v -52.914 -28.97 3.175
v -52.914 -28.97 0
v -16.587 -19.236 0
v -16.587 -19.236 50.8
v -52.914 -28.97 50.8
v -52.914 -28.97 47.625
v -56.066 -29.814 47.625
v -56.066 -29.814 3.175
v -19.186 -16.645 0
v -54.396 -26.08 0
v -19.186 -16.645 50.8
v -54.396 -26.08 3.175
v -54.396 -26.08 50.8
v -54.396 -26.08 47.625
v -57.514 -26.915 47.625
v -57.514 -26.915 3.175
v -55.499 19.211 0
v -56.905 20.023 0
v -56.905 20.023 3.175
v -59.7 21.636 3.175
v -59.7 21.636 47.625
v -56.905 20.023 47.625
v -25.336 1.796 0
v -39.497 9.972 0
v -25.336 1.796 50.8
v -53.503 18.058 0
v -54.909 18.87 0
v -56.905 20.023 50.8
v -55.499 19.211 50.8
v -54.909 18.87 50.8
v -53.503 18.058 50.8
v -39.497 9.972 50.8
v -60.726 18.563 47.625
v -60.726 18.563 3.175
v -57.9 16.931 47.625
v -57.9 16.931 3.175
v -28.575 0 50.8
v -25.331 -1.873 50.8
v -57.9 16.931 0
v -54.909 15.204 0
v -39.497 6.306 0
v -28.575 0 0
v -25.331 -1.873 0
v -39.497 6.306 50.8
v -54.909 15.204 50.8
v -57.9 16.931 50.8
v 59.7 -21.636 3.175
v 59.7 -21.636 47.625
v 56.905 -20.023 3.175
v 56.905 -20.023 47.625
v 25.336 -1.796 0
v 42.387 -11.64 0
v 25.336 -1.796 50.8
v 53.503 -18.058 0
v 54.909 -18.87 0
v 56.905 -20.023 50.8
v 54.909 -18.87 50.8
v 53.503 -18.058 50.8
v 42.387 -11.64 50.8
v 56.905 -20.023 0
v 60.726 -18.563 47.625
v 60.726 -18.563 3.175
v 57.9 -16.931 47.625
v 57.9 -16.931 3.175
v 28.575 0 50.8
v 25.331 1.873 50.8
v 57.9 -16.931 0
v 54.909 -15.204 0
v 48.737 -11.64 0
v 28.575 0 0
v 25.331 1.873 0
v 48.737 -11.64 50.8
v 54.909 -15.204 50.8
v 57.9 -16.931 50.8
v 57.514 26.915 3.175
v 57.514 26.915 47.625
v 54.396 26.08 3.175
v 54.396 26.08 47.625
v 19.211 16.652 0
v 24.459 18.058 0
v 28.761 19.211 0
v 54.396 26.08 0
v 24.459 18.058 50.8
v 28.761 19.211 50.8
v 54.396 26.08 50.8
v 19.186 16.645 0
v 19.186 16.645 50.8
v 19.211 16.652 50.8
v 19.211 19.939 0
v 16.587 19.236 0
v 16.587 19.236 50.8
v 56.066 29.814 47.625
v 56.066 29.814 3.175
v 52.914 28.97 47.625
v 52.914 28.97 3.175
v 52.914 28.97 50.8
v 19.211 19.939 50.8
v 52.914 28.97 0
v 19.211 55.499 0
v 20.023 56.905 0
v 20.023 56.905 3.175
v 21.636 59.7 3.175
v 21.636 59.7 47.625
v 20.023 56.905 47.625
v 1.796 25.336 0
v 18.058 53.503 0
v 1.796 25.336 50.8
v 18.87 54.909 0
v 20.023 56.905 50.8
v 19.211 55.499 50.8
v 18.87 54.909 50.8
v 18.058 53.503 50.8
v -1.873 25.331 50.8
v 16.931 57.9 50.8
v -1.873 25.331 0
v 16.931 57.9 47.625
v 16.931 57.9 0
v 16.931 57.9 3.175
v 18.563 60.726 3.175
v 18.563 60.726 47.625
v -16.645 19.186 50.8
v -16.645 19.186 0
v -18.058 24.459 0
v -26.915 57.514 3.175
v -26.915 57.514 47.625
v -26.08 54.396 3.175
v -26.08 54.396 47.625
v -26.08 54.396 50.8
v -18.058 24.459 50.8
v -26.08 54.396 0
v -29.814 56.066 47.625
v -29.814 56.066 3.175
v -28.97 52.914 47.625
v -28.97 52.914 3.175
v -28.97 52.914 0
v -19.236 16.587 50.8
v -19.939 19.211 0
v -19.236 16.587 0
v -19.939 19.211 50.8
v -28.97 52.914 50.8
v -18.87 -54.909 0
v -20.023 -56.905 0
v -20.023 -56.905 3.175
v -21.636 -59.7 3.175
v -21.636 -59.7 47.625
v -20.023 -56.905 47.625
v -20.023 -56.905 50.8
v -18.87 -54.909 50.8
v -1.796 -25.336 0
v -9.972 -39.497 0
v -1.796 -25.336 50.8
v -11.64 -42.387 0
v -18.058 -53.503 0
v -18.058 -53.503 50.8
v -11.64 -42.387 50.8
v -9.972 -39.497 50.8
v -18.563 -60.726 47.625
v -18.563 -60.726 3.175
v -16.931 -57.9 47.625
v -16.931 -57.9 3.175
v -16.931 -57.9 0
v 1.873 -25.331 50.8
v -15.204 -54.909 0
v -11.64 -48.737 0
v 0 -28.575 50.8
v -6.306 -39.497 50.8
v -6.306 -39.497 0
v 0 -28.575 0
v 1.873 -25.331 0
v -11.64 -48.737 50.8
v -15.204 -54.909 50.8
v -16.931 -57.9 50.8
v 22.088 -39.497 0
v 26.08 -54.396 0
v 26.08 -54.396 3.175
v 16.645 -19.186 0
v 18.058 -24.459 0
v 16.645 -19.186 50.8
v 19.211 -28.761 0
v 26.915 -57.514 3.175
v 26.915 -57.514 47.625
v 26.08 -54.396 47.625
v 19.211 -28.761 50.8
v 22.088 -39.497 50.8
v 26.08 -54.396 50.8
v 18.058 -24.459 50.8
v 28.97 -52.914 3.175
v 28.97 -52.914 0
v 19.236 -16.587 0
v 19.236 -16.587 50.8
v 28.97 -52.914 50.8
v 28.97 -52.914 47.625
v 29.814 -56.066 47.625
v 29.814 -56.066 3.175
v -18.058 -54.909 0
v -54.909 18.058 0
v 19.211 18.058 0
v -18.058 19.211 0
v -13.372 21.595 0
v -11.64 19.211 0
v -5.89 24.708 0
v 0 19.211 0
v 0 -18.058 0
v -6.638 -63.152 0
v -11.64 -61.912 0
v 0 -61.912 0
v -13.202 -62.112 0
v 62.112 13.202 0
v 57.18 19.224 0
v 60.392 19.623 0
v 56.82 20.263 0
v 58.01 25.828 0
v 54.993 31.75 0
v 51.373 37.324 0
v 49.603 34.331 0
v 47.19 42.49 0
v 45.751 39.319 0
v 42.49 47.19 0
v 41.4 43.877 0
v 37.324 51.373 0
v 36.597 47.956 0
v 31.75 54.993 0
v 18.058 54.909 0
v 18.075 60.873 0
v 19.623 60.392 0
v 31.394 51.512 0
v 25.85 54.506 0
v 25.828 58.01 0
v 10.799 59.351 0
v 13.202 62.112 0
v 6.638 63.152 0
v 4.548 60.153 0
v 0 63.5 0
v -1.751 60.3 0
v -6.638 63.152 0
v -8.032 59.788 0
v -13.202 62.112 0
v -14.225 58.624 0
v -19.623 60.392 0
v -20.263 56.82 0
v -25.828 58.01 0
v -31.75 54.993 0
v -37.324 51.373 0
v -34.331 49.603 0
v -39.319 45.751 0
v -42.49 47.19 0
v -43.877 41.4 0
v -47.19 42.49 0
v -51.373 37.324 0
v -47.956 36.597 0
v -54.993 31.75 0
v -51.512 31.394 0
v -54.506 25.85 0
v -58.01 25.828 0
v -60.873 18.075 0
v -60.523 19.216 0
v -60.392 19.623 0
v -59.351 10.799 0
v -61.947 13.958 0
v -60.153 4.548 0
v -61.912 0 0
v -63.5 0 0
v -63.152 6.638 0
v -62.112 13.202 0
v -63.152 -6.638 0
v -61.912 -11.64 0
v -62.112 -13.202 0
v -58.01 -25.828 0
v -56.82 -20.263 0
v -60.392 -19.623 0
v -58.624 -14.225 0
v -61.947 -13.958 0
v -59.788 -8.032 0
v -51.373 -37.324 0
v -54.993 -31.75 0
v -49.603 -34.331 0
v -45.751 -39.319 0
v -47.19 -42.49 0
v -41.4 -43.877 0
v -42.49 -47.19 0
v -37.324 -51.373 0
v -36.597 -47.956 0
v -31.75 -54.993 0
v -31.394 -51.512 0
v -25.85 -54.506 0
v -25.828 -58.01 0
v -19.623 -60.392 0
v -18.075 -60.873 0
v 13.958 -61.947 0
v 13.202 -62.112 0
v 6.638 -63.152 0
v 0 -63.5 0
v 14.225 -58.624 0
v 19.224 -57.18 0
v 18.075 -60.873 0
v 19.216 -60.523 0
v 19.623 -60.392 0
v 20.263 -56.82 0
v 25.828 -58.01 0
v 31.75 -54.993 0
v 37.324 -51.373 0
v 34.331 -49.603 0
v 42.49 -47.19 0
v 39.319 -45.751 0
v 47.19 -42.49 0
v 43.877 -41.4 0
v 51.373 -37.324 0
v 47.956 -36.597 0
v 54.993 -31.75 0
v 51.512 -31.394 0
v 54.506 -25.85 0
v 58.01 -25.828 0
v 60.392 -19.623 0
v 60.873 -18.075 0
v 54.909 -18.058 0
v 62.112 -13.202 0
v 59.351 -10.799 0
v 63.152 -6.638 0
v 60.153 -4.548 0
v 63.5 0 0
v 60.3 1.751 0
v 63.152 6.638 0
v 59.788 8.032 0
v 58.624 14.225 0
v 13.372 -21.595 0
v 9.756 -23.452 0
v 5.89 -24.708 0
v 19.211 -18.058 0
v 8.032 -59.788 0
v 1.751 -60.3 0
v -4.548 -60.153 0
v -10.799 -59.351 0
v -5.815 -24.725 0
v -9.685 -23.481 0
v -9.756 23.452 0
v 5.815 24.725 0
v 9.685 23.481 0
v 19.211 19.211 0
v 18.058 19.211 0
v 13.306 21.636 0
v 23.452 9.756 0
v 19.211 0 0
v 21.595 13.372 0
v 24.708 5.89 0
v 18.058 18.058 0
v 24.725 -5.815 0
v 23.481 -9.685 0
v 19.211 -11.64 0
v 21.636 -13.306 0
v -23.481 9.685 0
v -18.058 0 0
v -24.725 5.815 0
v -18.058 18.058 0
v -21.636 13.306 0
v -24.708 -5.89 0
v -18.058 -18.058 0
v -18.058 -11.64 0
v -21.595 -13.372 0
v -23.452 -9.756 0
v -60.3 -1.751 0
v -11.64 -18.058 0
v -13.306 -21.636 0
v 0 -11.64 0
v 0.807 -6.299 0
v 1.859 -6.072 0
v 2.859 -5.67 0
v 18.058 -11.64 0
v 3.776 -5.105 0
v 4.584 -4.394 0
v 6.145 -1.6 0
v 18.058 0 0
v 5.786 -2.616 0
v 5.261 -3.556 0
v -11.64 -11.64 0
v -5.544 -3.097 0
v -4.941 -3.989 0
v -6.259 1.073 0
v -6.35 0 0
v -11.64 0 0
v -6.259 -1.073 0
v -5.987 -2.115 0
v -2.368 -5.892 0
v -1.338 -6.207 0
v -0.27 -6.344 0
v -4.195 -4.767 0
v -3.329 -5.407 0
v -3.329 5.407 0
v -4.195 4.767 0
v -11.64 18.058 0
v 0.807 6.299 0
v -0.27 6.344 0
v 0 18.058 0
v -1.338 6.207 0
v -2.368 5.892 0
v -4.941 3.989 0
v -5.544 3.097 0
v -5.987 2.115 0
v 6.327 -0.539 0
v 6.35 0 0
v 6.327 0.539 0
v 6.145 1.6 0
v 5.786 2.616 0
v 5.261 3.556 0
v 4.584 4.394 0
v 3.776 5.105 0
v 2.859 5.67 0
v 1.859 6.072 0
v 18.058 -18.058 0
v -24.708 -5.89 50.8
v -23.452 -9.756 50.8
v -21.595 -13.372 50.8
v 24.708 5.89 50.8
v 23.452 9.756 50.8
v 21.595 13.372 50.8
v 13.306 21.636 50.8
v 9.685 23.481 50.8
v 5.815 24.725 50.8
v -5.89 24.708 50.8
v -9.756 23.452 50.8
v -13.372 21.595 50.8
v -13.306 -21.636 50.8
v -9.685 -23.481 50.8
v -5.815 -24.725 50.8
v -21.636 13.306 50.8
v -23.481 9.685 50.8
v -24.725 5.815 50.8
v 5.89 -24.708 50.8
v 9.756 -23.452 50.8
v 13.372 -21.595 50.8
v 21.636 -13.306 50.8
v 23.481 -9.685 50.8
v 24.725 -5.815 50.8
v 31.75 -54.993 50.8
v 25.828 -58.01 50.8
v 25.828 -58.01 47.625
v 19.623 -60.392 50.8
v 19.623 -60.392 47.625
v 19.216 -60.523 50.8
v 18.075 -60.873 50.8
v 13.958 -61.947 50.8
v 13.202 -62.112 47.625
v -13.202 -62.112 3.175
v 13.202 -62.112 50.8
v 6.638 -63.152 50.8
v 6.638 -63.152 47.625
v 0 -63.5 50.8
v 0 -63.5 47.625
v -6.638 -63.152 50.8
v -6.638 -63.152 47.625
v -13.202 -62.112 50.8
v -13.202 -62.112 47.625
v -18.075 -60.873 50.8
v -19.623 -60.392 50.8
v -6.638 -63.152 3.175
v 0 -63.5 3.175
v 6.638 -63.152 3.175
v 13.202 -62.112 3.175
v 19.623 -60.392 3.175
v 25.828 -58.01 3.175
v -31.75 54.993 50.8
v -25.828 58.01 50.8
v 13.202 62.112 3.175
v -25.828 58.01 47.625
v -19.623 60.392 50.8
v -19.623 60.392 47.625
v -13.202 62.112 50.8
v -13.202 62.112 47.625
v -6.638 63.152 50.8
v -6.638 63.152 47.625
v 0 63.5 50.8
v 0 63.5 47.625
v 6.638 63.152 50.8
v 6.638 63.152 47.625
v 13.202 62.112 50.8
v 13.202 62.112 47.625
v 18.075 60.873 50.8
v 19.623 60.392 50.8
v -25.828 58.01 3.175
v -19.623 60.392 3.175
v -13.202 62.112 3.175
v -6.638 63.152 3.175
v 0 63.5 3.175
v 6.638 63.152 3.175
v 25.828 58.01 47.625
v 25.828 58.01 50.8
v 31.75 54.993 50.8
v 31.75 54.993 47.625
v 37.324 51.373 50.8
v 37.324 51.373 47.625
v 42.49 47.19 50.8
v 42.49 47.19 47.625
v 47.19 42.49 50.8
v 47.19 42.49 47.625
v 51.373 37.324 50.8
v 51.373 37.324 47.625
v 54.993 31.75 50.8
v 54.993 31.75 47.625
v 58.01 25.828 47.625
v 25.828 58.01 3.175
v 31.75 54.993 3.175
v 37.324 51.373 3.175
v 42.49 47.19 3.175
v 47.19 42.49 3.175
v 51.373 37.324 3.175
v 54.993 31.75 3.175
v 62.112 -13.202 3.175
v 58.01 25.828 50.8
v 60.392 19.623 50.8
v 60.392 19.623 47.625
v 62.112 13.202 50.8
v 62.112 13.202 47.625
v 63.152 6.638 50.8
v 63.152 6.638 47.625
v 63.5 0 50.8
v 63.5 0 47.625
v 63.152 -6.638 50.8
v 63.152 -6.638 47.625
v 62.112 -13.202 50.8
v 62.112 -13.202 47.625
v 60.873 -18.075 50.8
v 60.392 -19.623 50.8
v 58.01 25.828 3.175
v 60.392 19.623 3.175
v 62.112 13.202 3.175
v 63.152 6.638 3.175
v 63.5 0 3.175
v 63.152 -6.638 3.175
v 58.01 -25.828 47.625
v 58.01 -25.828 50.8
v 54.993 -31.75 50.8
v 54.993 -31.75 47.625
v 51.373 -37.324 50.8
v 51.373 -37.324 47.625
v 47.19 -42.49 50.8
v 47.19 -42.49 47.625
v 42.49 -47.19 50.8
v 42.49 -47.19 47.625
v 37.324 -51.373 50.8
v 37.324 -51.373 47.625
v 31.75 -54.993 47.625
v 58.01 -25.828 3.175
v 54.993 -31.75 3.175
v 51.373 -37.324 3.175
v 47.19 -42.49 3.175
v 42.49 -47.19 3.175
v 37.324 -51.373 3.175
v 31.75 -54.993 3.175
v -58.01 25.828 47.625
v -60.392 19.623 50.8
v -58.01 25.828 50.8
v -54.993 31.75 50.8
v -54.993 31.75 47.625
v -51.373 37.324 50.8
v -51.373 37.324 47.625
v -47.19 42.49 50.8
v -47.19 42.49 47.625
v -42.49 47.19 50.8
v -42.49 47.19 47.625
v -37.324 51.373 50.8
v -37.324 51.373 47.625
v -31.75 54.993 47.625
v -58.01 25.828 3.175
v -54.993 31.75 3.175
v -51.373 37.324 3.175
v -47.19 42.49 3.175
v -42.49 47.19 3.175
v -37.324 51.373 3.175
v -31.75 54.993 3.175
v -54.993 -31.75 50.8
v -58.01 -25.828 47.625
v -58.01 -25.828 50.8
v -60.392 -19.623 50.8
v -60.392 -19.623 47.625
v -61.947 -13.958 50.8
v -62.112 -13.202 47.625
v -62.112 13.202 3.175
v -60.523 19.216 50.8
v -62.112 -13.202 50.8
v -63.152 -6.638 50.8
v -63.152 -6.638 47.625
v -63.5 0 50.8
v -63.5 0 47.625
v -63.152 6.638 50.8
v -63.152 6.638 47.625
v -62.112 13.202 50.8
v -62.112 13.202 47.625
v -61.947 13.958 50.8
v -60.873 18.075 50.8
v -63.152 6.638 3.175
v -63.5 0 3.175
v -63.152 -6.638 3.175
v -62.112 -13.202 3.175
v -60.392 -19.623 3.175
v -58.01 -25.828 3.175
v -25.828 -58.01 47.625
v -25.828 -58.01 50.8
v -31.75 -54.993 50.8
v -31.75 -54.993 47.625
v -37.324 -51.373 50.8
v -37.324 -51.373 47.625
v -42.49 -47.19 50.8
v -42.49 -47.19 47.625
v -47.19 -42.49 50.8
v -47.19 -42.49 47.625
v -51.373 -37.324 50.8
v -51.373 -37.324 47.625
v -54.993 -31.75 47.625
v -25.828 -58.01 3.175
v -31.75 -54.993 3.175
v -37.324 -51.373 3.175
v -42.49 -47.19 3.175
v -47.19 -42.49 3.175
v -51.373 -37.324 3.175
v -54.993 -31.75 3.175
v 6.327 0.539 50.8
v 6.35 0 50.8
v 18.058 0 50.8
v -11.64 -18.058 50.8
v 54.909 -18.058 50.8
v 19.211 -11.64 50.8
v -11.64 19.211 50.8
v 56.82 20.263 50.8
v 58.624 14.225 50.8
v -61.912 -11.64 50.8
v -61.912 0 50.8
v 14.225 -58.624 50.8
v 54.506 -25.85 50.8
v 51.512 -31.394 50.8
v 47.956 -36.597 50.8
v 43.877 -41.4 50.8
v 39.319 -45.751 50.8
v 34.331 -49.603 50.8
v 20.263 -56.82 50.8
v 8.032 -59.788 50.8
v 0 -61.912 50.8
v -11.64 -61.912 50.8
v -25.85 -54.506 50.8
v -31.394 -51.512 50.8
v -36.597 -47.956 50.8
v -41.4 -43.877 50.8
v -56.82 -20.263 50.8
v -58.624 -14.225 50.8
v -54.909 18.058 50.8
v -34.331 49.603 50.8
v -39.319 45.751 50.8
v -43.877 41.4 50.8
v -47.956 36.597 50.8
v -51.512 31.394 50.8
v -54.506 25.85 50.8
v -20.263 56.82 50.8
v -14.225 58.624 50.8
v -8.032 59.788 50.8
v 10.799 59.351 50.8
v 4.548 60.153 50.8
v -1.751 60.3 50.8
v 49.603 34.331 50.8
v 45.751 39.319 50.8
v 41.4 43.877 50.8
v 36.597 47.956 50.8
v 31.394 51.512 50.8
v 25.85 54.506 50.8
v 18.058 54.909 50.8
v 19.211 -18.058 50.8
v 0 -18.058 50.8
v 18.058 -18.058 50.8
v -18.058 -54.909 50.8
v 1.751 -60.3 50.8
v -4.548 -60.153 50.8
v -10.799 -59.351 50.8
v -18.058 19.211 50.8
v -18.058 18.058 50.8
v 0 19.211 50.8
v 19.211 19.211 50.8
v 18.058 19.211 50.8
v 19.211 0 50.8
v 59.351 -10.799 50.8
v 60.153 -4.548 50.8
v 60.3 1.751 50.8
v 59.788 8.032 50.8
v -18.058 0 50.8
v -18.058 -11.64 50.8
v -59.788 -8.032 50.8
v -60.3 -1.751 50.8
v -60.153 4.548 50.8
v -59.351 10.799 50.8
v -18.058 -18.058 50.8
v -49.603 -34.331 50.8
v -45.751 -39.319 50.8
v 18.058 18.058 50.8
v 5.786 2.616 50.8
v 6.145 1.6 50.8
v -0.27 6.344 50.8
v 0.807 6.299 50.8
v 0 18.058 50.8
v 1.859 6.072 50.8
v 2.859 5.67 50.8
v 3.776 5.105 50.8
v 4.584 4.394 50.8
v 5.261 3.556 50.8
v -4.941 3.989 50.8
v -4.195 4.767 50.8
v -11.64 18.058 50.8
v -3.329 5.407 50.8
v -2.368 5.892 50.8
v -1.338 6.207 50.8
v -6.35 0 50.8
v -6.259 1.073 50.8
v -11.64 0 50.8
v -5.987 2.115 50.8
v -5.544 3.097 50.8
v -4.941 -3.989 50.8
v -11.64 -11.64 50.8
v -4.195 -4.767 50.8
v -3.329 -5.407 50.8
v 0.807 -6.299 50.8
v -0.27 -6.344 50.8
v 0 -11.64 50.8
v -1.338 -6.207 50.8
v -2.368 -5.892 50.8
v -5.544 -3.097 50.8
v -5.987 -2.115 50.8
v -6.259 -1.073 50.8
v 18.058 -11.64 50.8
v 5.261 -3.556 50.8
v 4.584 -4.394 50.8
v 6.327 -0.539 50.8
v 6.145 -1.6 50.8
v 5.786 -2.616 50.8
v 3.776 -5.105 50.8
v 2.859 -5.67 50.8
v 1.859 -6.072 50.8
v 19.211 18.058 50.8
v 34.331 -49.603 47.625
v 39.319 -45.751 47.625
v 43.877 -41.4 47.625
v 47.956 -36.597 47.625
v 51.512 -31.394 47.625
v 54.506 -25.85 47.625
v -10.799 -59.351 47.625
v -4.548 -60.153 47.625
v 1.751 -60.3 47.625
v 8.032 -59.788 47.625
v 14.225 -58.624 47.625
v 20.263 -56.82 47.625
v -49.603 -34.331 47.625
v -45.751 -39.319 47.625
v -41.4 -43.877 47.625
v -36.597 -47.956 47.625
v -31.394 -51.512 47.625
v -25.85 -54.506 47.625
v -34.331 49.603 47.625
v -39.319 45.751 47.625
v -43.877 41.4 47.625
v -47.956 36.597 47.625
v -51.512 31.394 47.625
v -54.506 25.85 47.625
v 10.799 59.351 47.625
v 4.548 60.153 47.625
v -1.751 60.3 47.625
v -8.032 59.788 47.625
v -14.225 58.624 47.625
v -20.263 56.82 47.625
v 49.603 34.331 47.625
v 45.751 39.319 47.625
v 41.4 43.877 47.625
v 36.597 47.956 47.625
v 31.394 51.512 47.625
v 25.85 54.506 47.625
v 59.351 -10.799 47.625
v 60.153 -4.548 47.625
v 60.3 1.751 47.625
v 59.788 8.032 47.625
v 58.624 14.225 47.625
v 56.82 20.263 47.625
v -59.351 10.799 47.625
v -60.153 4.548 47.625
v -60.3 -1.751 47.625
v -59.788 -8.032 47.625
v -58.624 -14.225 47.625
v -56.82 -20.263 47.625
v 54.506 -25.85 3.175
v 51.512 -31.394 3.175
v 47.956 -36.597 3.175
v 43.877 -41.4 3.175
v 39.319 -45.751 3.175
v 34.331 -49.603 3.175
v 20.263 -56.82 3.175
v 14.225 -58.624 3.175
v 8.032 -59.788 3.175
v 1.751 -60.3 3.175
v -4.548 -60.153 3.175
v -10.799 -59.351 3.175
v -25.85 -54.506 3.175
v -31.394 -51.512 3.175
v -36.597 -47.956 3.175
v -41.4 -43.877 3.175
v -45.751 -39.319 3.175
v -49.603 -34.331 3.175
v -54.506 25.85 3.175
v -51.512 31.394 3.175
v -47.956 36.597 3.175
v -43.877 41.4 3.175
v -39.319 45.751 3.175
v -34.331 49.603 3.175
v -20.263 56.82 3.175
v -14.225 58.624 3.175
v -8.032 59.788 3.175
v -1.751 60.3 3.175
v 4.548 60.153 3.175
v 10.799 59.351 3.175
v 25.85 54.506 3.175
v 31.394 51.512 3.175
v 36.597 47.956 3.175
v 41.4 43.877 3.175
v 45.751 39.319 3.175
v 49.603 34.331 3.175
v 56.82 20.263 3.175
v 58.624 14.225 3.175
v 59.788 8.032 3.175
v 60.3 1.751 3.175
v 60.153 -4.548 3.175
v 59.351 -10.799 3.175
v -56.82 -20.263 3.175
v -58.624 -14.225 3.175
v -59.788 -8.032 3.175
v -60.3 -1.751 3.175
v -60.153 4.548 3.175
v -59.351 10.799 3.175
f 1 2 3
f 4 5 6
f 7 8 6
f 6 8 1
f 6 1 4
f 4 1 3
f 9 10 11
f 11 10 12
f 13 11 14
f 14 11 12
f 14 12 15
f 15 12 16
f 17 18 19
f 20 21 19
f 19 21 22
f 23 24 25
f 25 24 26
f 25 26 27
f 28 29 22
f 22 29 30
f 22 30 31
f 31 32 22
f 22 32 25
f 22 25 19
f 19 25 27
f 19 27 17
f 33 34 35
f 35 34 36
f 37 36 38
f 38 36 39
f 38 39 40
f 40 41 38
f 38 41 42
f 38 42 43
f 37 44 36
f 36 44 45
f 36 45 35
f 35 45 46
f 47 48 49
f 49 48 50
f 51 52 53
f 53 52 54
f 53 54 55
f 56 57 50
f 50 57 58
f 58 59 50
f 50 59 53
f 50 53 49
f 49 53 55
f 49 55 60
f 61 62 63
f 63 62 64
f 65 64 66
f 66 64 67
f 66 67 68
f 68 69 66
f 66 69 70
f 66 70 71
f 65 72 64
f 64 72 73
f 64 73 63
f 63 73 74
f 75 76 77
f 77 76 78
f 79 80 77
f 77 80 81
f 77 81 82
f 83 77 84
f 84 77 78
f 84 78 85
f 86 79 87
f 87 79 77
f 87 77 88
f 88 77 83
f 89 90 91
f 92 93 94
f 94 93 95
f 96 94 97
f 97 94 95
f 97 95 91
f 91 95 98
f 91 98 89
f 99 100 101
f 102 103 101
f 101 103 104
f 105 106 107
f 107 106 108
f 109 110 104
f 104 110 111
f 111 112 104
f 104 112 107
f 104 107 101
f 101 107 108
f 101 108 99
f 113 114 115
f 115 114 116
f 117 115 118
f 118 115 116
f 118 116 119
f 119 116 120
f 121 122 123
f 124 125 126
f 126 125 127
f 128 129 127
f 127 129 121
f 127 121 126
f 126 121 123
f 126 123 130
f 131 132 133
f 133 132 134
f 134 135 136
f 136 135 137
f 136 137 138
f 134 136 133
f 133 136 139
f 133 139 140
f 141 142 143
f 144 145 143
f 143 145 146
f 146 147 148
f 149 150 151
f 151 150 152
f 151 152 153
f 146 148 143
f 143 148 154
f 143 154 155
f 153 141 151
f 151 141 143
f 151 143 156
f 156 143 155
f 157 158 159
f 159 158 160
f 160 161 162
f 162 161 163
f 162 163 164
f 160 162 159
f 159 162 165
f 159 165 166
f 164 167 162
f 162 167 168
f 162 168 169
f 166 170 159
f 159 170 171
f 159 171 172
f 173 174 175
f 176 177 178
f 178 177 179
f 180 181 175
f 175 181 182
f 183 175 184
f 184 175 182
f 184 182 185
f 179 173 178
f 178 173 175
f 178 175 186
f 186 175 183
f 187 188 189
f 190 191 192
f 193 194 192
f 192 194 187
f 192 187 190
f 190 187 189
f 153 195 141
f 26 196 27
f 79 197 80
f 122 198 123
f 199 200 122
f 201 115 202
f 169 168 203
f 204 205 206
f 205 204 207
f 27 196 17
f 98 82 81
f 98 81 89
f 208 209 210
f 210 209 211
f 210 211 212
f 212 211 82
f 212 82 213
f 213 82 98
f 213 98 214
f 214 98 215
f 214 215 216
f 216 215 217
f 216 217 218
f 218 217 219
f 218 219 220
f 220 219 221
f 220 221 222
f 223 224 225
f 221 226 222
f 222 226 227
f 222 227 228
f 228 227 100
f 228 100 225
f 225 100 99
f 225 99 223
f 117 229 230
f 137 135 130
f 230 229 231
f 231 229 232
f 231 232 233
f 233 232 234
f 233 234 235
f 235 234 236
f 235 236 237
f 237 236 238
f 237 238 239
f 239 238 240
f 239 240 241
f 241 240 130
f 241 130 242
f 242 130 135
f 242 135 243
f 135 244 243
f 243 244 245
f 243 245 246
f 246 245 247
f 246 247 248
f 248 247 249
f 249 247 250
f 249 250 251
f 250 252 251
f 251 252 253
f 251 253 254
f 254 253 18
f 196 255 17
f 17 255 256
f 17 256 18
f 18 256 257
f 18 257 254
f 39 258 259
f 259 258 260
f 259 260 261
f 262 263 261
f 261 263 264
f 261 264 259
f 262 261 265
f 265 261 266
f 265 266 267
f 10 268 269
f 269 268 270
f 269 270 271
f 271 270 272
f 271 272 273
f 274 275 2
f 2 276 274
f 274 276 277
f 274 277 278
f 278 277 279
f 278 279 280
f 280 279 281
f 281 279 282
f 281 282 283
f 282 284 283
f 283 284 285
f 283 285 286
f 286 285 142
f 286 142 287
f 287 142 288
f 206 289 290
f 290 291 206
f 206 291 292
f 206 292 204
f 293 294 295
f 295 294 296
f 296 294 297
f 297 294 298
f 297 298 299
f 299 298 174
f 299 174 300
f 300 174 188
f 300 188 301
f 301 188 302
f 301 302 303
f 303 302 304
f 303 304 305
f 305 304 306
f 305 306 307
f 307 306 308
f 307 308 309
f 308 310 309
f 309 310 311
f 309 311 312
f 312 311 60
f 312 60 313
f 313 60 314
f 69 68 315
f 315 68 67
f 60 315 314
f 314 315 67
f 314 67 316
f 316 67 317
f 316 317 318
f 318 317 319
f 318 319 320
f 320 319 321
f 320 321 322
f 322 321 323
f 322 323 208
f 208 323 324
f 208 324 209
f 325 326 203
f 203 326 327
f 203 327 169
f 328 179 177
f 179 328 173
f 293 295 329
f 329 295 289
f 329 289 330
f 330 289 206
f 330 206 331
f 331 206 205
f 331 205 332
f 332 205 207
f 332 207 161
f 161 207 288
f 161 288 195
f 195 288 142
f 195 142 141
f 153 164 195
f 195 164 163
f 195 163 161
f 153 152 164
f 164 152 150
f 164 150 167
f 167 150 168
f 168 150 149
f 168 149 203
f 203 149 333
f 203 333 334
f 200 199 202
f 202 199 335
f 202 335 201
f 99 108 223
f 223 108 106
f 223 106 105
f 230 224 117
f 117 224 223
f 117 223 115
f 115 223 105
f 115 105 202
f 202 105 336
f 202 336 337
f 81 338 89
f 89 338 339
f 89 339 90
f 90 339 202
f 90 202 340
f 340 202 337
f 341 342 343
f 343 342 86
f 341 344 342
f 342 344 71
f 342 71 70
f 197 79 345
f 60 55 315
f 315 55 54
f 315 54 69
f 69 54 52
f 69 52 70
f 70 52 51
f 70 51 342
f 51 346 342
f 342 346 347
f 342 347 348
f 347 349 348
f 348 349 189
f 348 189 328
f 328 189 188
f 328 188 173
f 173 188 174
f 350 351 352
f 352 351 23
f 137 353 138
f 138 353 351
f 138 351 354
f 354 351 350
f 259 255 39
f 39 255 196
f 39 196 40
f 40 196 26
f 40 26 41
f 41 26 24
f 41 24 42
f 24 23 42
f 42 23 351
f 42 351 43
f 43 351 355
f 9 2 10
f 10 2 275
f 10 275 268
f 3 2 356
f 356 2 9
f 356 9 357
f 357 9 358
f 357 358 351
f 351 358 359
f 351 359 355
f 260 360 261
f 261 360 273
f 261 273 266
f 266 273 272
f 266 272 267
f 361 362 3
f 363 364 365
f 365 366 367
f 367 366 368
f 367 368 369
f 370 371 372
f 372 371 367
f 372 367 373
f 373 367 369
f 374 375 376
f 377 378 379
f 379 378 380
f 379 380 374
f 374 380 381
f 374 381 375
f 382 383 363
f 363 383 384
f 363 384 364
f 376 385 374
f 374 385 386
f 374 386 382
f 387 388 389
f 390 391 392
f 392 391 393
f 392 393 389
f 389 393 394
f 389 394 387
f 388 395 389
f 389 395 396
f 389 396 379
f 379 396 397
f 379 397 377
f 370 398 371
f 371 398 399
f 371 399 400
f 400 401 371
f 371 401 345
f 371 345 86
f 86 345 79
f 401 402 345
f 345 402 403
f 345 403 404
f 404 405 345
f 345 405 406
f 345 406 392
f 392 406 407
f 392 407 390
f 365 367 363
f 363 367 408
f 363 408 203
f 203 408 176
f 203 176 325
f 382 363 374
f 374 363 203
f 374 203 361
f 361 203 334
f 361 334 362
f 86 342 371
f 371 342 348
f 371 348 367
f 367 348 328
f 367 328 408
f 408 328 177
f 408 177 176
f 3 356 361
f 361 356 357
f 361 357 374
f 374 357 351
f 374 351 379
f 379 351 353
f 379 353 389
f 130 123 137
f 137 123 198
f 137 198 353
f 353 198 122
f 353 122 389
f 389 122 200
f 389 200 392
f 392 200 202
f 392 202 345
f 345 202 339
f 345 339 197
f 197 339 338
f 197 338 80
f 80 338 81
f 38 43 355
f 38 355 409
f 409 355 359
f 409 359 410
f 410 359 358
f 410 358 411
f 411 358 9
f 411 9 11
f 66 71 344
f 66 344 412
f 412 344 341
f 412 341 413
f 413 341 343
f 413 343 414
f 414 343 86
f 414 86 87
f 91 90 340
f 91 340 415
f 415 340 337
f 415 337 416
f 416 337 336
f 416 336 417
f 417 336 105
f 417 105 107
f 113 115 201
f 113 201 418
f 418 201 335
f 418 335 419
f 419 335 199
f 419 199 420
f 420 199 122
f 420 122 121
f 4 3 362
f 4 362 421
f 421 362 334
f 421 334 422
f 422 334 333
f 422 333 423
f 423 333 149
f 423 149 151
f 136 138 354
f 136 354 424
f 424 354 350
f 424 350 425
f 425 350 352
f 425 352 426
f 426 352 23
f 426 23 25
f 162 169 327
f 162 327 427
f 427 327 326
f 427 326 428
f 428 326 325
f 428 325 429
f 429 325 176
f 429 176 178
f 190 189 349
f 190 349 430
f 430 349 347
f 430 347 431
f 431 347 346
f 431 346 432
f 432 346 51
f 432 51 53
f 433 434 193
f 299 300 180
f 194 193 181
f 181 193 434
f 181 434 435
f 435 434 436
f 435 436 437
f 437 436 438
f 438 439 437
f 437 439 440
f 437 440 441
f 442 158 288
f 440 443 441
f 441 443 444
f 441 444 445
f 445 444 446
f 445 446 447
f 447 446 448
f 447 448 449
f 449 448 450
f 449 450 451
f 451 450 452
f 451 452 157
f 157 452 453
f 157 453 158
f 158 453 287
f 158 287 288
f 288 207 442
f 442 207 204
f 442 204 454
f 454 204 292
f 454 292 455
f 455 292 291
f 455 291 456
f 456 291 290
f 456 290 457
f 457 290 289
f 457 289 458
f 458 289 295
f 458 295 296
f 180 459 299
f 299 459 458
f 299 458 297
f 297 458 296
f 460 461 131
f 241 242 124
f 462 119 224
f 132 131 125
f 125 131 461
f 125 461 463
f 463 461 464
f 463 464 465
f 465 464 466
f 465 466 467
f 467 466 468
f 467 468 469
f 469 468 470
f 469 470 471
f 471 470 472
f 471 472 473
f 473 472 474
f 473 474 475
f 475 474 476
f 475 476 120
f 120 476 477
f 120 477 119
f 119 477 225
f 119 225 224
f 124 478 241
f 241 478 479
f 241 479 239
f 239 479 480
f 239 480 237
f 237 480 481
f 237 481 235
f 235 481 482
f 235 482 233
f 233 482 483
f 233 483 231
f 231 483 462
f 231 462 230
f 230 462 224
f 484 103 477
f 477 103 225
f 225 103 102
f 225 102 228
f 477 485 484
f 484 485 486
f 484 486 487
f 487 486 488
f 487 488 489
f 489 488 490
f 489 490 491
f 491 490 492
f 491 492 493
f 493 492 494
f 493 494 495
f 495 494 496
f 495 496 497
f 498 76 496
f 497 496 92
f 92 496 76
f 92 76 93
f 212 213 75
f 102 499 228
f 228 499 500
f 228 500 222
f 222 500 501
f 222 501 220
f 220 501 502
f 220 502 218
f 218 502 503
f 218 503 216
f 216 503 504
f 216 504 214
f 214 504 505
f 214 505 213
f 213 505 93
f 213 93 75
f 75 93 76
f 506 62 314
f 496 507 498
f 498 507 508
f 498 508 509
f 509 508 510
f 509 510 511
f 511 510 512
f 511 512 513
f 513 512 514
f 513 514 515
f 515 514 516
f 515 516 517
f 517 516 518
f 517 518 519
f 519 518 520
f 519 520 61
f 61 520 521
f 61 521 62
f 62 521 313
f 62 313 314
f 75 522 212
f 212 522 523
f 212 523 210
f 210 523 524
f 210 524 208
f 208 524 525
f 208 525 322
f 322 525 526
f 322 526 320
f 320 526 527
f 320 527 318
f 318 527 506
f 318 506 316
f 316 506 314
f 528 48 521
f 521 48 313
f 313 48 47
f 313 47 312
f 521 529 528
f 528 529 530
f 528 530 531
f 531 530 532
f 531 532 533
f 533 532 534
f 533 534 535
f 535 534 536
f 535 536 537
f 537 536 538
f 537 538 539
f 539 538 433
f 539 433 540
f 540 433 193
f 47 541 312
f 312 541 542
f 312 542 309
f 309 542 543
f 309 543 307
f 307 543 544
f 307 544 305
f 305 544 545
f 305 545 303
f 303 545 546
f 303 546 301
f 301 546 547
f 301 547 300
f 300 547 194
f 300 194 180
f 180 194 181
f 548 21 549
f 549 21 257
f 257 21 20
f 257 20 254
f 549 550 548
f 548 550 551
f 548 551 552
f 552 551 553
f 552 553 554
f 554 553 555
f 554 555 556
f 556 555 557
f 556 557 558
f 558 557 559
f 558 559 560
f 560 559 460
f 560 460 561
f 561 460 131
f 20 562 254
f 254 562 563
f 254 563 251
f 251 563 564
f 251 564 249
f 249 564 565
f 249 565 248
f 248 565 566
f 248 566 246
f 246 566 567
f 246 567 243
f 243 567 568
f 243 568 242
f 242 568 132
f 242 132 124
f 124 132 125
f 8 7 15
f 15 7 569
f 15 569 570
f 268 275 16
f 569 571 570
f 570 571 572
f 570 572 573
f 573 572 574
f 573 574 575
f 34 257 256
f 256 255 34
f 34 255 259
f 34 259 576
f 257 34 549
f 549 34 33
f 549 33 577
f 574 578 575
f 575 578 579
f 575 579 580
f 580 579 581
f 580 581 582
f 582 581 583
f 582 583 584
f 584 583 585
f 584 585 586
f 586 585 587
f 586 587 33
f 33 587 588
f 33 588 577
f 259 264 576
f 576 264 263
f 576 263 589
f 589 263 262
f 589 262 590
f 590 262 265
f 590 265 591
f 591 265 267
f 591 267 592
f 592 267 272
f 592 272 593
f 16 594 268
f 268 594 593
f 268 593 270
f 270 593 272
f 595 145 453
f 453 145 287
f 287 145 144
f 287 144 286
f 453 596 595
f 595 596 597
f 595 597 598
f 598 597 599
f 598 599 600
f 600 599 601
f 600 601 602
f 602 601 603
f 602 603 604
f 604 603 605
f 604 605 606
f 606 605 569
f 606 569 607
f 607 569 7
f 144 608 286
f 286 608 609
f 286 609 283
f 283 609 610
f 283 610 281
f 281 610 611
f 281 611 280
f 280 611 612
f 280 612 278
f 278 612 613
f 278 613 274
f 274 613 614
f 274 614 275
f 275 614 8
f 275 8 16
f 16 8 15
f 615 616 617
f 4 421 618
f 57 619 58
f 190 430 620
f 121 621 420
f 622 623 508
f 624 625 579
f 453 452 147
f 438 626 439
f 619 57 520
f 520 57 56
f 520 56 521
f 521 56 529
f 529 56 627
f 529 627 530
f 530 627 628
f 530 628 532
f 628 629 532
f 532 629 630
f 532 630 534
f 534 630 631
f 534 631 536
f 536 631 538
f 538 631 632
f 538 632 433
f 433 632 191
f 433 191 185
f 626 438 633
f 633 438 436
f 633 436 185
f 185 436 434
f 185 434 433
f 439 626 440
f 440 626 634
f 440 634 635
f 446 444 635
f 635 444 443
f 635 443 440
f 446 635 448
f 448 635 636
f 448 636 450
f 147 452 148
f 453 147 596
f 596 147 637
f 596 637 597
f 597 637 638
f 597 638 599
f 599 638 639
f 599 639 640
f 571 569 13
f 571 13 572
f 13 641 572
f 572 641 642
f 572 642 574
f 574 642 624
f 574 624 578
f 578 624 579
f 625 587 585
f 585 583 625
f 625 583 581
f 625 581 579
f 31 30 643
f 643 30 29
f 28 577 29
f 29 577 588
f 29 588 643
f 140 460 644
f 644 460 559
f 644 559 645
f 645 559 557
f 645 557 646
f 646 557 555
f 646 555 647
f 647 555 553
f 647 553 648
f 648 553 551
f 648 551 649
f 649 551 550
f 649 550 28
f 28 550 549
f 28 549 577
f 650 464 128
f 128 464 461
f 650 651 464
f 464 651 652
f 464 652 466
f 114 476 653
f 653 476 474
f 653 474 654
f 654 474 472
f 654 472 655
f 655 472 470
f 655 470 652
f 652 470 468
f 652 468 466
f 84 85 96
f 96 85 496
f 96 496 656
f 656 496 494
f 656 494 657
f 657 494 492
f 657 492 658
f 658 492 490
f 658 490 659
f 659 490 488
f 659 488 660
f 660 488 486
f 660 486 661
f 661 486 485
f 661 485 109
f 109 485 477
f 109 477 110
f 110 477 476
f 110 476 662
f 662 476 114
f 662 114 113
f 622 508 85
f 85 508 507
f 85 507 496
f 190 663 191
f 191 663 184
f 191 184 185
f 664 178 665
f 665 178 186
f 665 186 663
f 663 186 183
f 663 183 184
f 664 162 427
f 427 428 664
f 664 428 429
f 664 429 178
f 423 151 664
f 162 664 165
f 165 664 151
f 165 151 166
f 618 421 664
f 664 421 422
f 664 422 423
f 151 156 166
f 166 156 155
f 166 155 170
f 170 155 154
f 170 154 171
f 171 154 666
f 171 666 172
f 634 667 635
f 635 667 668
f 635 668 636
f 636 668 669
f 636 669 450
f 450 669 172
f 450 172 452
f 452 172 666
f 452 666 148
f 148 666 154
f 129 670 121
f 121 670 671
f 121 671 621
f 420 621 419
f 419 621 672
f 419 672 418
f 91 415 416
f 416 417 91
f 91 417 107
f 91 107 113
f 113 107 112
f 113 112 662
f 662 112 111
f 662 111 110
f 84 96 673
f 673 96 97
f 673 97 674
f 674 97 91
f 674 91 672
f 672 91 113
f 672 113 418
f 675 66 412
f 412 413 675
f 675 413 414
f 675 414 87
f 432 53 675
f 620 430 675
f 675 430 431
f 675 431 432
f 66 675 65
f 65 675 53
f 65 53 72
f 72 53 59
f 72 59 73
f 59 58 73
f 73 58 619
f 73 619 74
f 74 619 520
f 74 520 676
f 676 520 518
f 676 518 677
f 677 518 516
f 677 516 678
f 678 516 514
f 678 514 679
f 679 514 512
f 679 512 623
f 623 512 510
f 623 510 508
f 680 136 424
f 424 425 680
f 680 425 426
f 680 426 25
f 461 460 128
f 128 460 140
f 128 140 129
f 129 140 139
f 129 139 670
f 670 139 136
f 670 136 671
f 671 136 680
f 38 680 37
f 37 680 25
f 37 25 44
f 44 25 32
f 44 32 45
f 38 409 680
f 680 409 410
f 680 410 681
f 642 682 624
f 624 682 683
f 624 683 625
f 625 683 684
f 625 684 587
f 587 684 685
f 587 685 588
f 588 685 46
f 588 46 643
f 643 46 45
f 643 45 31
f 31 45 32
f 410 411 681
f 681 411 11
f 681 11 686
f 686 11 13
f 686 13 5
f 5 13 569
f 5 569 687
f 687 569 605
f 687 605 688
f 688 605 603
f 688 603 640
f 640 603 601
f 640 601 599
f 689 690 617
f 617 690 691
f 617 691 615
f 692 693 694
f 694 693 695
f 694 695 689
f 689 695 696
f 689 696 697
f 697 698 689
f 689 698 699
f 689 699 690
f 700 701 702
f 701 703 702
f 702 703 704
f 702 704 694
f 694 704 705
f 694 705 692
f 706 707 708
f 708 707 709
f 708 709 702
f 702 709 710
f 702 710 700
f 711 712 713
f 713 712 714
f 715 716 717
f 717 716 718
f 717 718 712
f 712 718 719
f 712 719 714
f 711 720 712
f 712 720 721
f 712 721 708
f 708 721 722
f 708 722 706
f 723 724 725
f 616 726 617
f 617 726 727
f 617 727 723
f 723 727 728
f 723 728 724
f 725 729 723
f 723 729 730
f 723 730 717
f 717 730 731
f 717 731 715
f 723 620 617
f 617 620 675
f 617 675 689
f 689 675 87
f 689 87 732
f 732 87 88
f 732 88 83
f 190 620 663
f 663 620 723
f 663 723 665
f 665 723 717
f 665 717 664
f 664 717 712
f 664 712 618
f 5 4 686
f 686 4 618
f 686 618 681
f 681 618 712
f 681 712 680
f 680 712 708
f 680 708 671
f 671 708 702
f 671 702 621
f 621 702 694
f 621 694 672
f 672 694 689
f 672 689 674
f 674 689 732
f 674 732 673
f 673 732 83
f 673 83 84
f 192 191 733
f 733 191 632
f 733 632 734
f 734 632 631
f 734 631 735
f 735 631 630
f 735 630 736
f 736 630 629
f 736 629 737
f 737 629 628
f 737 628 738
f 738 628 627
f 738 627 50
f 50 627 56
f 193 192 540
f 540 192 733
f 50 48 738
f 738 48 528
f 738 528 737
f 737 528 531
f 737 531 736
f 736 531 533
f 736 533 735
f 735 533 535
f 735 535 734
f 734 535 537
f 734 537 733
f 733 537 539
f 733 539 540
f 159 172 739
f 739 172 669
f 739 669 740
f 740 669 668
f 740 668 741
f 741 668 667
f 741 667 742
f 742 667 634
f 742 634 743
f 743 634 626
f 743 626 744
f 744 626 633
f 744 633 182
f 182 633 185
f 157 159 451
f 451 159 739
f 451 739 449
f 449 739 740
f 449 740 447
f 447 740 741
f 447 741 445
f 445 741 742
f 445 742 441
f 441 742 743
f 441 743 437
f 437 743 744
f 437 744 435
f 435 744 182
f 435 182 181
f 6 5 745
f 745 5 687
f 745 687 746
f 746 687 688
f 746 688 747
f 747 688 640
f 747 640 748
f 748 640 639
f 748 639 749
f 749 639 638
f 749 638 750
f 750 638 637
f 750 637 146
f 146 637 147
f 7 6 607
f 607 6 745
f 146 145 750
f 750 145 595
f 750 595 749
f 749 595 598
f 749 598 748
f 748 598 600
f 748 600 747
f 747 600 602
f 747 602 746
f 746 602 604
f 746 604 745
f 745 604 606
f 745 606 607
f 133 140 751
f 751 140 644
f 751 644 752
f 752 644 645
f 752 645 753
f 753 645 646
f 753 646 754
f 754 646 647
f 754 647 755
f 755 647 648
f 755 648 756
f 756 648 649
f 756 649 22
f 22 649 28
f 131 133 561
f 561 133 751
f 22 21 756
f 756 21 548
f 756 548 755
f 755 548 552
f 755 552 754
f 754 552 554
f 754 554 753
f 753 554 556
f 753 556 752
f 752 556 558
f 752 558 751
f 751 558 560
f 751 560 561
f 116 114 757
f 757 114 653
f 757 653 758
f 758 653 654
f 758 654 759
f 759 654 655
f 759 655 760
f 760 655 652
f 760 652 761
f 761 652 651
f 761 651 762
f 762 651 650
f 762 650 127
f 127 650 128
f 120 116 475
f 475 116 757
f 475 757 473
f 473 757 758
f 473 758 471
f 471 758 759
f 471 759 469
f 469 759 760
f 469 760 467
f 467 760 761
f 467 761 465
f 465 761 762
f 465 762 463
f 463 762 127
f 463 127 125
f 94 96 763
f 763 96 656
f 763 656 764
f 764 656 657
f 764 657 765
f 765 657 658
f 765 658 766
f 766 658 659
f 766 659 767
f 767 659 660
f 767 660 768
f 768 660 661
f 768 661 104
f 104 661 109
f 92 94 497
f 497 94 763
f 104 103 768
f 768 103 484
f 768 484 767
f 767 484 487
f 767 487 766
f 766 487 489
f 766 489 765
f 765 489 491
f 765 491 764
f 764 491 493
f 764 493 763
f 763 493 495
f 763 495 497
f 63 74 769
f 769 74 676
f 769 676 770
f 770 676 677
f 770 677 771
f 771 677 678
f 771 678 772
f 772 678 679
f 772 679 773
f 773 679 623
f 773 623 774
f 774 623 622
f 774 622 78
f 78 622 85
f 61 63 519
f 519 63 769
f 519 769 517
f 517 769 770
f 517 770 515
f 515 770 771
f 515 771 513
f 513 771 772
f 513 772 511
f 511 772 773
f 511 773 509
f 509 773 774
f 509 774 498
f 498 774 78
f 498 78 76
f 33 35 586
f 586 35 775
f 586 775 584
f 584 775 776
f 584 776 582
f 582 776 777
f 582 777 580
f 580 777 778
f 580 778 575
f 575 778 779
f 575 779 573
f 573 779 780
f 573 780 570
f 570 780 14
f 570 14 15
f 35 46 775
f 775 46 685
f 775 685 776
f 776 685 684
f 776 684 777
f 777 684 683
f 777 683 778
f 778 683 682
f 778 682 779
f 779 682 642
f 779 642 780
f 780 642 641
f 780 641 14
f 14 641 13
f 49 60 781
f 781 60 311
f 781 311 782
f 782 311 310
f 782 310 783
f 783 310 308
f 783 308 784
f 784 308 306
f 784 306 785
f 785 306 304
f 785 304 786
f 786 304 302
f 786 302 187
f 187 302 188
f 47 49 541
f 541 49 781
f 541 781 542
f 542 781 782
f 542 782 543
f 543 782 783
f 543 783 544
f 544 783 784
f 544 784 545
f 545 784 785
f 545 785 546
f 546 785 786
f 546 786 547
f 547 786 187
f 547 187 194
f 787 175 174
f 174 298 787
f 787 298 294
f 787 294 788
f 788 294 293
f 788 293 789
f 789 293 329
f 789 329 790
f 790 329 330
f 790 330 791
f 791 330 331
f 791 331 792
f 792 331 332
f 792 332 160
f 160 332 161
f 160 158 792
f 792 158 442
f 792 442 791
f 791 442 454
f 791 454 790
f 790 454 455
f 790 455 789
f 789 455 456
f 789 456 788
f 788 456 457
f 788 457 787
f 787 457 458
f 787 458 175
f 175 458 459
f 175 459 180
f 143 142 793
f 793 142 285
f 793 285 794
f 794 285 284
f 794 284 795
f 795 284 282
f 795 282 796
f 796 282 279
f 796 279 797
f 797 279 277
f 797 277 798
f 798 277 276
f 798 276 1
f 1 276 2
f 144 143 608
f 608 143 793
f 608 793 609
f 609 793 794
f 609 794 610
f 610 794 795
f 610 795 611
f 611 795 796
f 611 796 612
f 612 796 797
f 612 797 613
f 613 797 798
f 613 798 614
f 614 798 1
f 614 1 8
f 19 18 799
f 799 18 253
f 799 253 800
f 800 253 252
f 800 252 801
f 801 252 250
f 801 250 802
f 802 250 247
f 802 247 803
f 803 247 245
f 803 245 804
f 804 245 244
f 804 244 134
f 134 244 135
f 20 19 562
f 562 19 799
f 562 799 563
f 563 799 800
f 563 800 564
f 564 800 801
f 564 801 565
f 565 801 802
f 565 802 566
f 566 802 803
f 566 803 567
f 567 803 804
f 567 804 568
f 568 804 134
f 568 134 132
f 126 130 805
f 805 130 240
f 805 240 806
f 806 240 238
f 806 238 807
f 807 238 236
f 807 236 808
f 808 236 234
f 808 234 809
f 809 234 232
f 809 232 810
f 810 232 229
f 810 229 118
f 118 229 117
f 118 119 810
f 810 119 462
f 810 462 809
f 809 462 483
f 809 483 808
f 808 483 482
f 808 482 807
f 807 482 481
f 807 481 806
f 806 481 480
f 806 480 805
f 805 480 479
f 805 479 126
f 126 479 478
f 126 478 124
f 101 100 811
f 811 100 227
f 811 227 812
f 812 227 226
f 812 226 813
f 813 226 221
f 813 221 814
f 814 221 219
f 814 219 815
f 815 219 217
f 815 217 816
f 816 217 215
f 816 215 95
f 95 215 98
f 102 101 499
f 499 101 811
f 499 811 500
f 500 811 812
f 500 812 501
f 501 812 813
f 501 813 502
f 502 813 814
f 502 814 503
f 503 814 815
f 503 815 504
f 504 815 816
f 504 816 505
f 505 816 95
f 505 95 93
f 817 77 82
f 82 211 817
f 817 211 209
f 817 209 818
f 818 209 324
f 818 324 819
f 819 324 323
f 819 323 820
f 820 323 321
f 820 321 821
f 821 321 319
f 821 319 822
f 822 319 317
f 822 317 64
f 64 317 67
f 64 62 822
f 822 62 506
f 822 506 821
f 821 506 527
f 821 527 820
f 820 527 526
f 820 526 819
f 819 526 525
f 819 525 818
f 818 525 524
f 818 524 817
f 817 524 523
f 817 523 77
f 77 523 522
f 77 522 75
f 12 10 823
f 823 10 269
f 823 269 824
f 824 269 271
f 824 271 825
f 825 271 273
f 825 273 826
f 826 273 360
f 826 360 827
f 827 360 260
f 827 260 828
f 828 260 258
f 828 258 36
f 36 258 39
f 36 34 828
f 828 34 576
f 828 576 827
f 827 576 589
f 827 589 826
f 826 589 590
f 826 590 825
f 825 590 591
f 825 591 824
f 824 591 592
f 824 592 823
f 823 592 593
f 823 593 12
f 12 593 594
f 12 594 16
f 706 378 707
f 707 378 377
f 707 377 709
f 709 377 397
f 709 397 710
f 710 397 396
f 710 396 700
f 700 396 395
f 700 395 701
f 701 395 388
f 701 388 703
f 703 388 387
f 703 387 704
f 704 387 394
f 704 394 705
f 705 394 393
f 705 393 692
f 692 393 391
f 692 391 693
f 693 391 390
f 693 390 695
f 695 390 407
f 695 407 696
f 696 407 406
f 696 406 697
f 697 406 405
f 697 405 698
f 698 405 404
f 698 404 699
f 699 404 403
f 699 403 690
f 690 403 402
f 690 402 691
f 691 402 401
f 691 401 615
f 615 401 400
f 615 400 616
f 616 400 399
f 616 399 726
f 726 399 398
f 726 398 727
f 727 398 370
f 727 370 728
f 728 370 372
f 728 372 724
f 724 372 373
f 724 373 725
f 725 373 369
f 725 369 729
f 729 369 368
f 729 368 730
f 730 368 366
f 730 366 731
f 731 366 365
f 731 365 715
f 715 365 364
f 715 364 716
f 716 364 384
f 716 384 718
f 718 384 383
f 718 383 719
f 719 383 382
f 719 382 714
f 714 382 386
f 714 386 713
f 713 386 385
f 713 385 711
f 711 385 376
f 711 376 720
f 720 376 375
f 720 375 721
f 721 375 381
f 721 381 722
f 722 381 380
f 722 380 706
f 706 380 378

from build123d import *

# Parameters (mm, degrees)
SKETCH1_R           = 6.35
BOSS_EXTRUDE1_DEPTH = 50.8
BOSS_EXTRUDE2_START = -3.175
SKETCH2_R           = 63.5
SKETCH2_R_2         = 60.325
BOSS_EXTRUDE2_DEPTH = 3.175
SKETCH6_R           = 63.5
SKETCH6_R_2         = 60.325
BOSS_EXTRUDE3_DEPTH = 3.175
SKETCH1_3_R         = 6.35
CUT_EXTRUDE1_DEPTH  = 50.8


with BuildPart() as part:
    # Sketch1 → Boss-Extrude1 (new body)
    with BuildSketch(Plane.XY):
        Circle(SKETCH1_R)
        with BuildLine():
            Line((59.700240967, -21.63634046), (25.336398074, -1.796366515))
            ThreePointArc((25.336398074, -1.796366515), (-25.399970938, -0.03842333), (25.330847289, 1.873012441))
            Line((25.330847289, 1.873012441), (60.726284541, -18.562552784))
            ThreePointArc((60.726284541, -18.562552784), (60.232873534, -20.105992785), (59.700240967, -21.63634046))
        make_face()
        with BuildLine():
            Line((26.915242167, -57.513648286), (16.645315944, -19.185761833))
            ThreePointArc((16.645315944, -19.185761833), (-17.987661089, 17.933322295), (19.23603369, -16.587194093))
            Line((19.23603369, -16.587194093), (29.814260645, -56.065674545))
            ThreePointArc((29.814260645, -56.065674545), (28.373989485, -56.808157167), (26.915242167, -57.513648286))
        make_face()
        with BuildLine():
            Line((-21.63634046, -59.700240967), (-1.796366515, -25.336398074))
            ThreePointArc((-1.796366515, -25.336398074), (-0.03842333, 25.399970938), (1.873012441, -25.330847289))
            Line((1.873012441, -25.330847289), (-18.562552784, -60.726284541))
            ThreePointArc((-18.562552784, -60.726284541), (-20.105992785, -60.232873534), (-21.63634046, -59.700240967))
        make_face()
        with BuildLine():
            Line((-57.513648286, -26.915242167), (-19.185761833, -16.645315944))
            ThreePointArc((-19.185761833, -16.645315944), (17.933322295, 17.987661089), (-16.587194093, -19.23603369))
            Line((-16.587194093, -19.23603369), (-56.065674545, -29.814260645))
            ThreePointArc((-56.065674545, -29.814260645), (-56.808157167, -28.373989485), (-57.513648286, -26.915242167))
        make_face()
        with BuildLine():
            Line((-59.700240967, 21.63634046), (-25.336398074, 1.796366515))
            ThreePointArc((-25.336398074, 1.796366515), (25.399970938, 0.03842333), (-25.330847289, -1.873012441))
            Line((-25.330847289, -1.873012441), (-60.726284541, 18.562552784))
            ThreePointArc((-60.726284541, 18.562552784), (-60.232873534, 20.105992785), (-59.700240967, 21.63634046))
        make_face()
        with BuildLine():
            Line((-26.915242167, 57.513648286), (-16.645315944, 19.185761833))
            ThreePointArc((-16.645315944, 19.185761833), (17.987661089, -17.933322295), (-19.23603369, 16.587194093))
            Line((-19.23603369, 16.587194093), (-29.814260645, 56.065674545))
            ThreePointArc((-29.814260645, 56.065674545), (-28.373989485, 56.808157167), (-26.915242167, 57.513648286))
        make_face()
        with BuildLine():
            Line((21.63634046, 59.700240967), (1.796366515, 25.336398074))
            ThreePointArc((1.796366515, 25.336398074), (0.03842333, -25.399970938), (-1.873012441, 25.330847289))
            Line((-1.873012441, 25.330847289), (18.562552784, 60.726284541))
            ThreePointArc((18.562552784, 60.726284541), (20.105992785, 60.232873534), (21.63634046, 59.700240967))
        make_face()
        with BuildLine():
            Line((57.513648286, 26.915242167), (19.185761833, 16.645315944))
            ThreePointArc((19.185761833, 16.645315944), (-17.933322295, -17.987661089), (16.587194093, 19.23603369))
            Line((16.587194093, 19.23603369), (56.065674545, 29.814260645))
            ThreePointArc((56.065674545, 29.814260645), (56.808157167, 28.373989485), (57.513648286, 26.915242167))
        make_face()
    extrude(amount=BOSS_EXTRUDE1_DEPTH)

    # Sketch2 → Boss-Extrude2 (add)
    with BuildSketch(Plane.XY.offset(50.8).offset(BOSS_EXTRUDE2_START)):
        with Locations(Location((0, 0, 0), (0, 0, 163.002878163))):
            Circle(SKETCH2_R)
        Circle(SKETCH2_R_2, mode=Mode.SUBTRACT)
    extrude(amount=BOSS_EXTRUDE2_DEPTH)

    # Sketch6 → Boss-Extrude3 (add)
    with BuildSketch(Plane(origin=(0, 0, 0), x_dir=(-1, 0, 0), z_dir=(0, 0, -1))):
        with Locations(Location((0, 0, 0), (0, 0, 180))):
            Circle(SKETCH6_R)
        Circle(SKETCH6_R_2, mode=Mode.SUBTRACT)
    extrude(amount=-BOSS_EXTRUDE3_DEPTH)

    # Sketch1<3> → Cut-Extrude1 (cut)
    with BuildSketch(Plane.XY):
        Circle(SKETCH1_3_R)
    extrude(amount=CUT_EXTRUDE1_DEPTH, mode=Mode.SUBTRACT)


solid = part.part
